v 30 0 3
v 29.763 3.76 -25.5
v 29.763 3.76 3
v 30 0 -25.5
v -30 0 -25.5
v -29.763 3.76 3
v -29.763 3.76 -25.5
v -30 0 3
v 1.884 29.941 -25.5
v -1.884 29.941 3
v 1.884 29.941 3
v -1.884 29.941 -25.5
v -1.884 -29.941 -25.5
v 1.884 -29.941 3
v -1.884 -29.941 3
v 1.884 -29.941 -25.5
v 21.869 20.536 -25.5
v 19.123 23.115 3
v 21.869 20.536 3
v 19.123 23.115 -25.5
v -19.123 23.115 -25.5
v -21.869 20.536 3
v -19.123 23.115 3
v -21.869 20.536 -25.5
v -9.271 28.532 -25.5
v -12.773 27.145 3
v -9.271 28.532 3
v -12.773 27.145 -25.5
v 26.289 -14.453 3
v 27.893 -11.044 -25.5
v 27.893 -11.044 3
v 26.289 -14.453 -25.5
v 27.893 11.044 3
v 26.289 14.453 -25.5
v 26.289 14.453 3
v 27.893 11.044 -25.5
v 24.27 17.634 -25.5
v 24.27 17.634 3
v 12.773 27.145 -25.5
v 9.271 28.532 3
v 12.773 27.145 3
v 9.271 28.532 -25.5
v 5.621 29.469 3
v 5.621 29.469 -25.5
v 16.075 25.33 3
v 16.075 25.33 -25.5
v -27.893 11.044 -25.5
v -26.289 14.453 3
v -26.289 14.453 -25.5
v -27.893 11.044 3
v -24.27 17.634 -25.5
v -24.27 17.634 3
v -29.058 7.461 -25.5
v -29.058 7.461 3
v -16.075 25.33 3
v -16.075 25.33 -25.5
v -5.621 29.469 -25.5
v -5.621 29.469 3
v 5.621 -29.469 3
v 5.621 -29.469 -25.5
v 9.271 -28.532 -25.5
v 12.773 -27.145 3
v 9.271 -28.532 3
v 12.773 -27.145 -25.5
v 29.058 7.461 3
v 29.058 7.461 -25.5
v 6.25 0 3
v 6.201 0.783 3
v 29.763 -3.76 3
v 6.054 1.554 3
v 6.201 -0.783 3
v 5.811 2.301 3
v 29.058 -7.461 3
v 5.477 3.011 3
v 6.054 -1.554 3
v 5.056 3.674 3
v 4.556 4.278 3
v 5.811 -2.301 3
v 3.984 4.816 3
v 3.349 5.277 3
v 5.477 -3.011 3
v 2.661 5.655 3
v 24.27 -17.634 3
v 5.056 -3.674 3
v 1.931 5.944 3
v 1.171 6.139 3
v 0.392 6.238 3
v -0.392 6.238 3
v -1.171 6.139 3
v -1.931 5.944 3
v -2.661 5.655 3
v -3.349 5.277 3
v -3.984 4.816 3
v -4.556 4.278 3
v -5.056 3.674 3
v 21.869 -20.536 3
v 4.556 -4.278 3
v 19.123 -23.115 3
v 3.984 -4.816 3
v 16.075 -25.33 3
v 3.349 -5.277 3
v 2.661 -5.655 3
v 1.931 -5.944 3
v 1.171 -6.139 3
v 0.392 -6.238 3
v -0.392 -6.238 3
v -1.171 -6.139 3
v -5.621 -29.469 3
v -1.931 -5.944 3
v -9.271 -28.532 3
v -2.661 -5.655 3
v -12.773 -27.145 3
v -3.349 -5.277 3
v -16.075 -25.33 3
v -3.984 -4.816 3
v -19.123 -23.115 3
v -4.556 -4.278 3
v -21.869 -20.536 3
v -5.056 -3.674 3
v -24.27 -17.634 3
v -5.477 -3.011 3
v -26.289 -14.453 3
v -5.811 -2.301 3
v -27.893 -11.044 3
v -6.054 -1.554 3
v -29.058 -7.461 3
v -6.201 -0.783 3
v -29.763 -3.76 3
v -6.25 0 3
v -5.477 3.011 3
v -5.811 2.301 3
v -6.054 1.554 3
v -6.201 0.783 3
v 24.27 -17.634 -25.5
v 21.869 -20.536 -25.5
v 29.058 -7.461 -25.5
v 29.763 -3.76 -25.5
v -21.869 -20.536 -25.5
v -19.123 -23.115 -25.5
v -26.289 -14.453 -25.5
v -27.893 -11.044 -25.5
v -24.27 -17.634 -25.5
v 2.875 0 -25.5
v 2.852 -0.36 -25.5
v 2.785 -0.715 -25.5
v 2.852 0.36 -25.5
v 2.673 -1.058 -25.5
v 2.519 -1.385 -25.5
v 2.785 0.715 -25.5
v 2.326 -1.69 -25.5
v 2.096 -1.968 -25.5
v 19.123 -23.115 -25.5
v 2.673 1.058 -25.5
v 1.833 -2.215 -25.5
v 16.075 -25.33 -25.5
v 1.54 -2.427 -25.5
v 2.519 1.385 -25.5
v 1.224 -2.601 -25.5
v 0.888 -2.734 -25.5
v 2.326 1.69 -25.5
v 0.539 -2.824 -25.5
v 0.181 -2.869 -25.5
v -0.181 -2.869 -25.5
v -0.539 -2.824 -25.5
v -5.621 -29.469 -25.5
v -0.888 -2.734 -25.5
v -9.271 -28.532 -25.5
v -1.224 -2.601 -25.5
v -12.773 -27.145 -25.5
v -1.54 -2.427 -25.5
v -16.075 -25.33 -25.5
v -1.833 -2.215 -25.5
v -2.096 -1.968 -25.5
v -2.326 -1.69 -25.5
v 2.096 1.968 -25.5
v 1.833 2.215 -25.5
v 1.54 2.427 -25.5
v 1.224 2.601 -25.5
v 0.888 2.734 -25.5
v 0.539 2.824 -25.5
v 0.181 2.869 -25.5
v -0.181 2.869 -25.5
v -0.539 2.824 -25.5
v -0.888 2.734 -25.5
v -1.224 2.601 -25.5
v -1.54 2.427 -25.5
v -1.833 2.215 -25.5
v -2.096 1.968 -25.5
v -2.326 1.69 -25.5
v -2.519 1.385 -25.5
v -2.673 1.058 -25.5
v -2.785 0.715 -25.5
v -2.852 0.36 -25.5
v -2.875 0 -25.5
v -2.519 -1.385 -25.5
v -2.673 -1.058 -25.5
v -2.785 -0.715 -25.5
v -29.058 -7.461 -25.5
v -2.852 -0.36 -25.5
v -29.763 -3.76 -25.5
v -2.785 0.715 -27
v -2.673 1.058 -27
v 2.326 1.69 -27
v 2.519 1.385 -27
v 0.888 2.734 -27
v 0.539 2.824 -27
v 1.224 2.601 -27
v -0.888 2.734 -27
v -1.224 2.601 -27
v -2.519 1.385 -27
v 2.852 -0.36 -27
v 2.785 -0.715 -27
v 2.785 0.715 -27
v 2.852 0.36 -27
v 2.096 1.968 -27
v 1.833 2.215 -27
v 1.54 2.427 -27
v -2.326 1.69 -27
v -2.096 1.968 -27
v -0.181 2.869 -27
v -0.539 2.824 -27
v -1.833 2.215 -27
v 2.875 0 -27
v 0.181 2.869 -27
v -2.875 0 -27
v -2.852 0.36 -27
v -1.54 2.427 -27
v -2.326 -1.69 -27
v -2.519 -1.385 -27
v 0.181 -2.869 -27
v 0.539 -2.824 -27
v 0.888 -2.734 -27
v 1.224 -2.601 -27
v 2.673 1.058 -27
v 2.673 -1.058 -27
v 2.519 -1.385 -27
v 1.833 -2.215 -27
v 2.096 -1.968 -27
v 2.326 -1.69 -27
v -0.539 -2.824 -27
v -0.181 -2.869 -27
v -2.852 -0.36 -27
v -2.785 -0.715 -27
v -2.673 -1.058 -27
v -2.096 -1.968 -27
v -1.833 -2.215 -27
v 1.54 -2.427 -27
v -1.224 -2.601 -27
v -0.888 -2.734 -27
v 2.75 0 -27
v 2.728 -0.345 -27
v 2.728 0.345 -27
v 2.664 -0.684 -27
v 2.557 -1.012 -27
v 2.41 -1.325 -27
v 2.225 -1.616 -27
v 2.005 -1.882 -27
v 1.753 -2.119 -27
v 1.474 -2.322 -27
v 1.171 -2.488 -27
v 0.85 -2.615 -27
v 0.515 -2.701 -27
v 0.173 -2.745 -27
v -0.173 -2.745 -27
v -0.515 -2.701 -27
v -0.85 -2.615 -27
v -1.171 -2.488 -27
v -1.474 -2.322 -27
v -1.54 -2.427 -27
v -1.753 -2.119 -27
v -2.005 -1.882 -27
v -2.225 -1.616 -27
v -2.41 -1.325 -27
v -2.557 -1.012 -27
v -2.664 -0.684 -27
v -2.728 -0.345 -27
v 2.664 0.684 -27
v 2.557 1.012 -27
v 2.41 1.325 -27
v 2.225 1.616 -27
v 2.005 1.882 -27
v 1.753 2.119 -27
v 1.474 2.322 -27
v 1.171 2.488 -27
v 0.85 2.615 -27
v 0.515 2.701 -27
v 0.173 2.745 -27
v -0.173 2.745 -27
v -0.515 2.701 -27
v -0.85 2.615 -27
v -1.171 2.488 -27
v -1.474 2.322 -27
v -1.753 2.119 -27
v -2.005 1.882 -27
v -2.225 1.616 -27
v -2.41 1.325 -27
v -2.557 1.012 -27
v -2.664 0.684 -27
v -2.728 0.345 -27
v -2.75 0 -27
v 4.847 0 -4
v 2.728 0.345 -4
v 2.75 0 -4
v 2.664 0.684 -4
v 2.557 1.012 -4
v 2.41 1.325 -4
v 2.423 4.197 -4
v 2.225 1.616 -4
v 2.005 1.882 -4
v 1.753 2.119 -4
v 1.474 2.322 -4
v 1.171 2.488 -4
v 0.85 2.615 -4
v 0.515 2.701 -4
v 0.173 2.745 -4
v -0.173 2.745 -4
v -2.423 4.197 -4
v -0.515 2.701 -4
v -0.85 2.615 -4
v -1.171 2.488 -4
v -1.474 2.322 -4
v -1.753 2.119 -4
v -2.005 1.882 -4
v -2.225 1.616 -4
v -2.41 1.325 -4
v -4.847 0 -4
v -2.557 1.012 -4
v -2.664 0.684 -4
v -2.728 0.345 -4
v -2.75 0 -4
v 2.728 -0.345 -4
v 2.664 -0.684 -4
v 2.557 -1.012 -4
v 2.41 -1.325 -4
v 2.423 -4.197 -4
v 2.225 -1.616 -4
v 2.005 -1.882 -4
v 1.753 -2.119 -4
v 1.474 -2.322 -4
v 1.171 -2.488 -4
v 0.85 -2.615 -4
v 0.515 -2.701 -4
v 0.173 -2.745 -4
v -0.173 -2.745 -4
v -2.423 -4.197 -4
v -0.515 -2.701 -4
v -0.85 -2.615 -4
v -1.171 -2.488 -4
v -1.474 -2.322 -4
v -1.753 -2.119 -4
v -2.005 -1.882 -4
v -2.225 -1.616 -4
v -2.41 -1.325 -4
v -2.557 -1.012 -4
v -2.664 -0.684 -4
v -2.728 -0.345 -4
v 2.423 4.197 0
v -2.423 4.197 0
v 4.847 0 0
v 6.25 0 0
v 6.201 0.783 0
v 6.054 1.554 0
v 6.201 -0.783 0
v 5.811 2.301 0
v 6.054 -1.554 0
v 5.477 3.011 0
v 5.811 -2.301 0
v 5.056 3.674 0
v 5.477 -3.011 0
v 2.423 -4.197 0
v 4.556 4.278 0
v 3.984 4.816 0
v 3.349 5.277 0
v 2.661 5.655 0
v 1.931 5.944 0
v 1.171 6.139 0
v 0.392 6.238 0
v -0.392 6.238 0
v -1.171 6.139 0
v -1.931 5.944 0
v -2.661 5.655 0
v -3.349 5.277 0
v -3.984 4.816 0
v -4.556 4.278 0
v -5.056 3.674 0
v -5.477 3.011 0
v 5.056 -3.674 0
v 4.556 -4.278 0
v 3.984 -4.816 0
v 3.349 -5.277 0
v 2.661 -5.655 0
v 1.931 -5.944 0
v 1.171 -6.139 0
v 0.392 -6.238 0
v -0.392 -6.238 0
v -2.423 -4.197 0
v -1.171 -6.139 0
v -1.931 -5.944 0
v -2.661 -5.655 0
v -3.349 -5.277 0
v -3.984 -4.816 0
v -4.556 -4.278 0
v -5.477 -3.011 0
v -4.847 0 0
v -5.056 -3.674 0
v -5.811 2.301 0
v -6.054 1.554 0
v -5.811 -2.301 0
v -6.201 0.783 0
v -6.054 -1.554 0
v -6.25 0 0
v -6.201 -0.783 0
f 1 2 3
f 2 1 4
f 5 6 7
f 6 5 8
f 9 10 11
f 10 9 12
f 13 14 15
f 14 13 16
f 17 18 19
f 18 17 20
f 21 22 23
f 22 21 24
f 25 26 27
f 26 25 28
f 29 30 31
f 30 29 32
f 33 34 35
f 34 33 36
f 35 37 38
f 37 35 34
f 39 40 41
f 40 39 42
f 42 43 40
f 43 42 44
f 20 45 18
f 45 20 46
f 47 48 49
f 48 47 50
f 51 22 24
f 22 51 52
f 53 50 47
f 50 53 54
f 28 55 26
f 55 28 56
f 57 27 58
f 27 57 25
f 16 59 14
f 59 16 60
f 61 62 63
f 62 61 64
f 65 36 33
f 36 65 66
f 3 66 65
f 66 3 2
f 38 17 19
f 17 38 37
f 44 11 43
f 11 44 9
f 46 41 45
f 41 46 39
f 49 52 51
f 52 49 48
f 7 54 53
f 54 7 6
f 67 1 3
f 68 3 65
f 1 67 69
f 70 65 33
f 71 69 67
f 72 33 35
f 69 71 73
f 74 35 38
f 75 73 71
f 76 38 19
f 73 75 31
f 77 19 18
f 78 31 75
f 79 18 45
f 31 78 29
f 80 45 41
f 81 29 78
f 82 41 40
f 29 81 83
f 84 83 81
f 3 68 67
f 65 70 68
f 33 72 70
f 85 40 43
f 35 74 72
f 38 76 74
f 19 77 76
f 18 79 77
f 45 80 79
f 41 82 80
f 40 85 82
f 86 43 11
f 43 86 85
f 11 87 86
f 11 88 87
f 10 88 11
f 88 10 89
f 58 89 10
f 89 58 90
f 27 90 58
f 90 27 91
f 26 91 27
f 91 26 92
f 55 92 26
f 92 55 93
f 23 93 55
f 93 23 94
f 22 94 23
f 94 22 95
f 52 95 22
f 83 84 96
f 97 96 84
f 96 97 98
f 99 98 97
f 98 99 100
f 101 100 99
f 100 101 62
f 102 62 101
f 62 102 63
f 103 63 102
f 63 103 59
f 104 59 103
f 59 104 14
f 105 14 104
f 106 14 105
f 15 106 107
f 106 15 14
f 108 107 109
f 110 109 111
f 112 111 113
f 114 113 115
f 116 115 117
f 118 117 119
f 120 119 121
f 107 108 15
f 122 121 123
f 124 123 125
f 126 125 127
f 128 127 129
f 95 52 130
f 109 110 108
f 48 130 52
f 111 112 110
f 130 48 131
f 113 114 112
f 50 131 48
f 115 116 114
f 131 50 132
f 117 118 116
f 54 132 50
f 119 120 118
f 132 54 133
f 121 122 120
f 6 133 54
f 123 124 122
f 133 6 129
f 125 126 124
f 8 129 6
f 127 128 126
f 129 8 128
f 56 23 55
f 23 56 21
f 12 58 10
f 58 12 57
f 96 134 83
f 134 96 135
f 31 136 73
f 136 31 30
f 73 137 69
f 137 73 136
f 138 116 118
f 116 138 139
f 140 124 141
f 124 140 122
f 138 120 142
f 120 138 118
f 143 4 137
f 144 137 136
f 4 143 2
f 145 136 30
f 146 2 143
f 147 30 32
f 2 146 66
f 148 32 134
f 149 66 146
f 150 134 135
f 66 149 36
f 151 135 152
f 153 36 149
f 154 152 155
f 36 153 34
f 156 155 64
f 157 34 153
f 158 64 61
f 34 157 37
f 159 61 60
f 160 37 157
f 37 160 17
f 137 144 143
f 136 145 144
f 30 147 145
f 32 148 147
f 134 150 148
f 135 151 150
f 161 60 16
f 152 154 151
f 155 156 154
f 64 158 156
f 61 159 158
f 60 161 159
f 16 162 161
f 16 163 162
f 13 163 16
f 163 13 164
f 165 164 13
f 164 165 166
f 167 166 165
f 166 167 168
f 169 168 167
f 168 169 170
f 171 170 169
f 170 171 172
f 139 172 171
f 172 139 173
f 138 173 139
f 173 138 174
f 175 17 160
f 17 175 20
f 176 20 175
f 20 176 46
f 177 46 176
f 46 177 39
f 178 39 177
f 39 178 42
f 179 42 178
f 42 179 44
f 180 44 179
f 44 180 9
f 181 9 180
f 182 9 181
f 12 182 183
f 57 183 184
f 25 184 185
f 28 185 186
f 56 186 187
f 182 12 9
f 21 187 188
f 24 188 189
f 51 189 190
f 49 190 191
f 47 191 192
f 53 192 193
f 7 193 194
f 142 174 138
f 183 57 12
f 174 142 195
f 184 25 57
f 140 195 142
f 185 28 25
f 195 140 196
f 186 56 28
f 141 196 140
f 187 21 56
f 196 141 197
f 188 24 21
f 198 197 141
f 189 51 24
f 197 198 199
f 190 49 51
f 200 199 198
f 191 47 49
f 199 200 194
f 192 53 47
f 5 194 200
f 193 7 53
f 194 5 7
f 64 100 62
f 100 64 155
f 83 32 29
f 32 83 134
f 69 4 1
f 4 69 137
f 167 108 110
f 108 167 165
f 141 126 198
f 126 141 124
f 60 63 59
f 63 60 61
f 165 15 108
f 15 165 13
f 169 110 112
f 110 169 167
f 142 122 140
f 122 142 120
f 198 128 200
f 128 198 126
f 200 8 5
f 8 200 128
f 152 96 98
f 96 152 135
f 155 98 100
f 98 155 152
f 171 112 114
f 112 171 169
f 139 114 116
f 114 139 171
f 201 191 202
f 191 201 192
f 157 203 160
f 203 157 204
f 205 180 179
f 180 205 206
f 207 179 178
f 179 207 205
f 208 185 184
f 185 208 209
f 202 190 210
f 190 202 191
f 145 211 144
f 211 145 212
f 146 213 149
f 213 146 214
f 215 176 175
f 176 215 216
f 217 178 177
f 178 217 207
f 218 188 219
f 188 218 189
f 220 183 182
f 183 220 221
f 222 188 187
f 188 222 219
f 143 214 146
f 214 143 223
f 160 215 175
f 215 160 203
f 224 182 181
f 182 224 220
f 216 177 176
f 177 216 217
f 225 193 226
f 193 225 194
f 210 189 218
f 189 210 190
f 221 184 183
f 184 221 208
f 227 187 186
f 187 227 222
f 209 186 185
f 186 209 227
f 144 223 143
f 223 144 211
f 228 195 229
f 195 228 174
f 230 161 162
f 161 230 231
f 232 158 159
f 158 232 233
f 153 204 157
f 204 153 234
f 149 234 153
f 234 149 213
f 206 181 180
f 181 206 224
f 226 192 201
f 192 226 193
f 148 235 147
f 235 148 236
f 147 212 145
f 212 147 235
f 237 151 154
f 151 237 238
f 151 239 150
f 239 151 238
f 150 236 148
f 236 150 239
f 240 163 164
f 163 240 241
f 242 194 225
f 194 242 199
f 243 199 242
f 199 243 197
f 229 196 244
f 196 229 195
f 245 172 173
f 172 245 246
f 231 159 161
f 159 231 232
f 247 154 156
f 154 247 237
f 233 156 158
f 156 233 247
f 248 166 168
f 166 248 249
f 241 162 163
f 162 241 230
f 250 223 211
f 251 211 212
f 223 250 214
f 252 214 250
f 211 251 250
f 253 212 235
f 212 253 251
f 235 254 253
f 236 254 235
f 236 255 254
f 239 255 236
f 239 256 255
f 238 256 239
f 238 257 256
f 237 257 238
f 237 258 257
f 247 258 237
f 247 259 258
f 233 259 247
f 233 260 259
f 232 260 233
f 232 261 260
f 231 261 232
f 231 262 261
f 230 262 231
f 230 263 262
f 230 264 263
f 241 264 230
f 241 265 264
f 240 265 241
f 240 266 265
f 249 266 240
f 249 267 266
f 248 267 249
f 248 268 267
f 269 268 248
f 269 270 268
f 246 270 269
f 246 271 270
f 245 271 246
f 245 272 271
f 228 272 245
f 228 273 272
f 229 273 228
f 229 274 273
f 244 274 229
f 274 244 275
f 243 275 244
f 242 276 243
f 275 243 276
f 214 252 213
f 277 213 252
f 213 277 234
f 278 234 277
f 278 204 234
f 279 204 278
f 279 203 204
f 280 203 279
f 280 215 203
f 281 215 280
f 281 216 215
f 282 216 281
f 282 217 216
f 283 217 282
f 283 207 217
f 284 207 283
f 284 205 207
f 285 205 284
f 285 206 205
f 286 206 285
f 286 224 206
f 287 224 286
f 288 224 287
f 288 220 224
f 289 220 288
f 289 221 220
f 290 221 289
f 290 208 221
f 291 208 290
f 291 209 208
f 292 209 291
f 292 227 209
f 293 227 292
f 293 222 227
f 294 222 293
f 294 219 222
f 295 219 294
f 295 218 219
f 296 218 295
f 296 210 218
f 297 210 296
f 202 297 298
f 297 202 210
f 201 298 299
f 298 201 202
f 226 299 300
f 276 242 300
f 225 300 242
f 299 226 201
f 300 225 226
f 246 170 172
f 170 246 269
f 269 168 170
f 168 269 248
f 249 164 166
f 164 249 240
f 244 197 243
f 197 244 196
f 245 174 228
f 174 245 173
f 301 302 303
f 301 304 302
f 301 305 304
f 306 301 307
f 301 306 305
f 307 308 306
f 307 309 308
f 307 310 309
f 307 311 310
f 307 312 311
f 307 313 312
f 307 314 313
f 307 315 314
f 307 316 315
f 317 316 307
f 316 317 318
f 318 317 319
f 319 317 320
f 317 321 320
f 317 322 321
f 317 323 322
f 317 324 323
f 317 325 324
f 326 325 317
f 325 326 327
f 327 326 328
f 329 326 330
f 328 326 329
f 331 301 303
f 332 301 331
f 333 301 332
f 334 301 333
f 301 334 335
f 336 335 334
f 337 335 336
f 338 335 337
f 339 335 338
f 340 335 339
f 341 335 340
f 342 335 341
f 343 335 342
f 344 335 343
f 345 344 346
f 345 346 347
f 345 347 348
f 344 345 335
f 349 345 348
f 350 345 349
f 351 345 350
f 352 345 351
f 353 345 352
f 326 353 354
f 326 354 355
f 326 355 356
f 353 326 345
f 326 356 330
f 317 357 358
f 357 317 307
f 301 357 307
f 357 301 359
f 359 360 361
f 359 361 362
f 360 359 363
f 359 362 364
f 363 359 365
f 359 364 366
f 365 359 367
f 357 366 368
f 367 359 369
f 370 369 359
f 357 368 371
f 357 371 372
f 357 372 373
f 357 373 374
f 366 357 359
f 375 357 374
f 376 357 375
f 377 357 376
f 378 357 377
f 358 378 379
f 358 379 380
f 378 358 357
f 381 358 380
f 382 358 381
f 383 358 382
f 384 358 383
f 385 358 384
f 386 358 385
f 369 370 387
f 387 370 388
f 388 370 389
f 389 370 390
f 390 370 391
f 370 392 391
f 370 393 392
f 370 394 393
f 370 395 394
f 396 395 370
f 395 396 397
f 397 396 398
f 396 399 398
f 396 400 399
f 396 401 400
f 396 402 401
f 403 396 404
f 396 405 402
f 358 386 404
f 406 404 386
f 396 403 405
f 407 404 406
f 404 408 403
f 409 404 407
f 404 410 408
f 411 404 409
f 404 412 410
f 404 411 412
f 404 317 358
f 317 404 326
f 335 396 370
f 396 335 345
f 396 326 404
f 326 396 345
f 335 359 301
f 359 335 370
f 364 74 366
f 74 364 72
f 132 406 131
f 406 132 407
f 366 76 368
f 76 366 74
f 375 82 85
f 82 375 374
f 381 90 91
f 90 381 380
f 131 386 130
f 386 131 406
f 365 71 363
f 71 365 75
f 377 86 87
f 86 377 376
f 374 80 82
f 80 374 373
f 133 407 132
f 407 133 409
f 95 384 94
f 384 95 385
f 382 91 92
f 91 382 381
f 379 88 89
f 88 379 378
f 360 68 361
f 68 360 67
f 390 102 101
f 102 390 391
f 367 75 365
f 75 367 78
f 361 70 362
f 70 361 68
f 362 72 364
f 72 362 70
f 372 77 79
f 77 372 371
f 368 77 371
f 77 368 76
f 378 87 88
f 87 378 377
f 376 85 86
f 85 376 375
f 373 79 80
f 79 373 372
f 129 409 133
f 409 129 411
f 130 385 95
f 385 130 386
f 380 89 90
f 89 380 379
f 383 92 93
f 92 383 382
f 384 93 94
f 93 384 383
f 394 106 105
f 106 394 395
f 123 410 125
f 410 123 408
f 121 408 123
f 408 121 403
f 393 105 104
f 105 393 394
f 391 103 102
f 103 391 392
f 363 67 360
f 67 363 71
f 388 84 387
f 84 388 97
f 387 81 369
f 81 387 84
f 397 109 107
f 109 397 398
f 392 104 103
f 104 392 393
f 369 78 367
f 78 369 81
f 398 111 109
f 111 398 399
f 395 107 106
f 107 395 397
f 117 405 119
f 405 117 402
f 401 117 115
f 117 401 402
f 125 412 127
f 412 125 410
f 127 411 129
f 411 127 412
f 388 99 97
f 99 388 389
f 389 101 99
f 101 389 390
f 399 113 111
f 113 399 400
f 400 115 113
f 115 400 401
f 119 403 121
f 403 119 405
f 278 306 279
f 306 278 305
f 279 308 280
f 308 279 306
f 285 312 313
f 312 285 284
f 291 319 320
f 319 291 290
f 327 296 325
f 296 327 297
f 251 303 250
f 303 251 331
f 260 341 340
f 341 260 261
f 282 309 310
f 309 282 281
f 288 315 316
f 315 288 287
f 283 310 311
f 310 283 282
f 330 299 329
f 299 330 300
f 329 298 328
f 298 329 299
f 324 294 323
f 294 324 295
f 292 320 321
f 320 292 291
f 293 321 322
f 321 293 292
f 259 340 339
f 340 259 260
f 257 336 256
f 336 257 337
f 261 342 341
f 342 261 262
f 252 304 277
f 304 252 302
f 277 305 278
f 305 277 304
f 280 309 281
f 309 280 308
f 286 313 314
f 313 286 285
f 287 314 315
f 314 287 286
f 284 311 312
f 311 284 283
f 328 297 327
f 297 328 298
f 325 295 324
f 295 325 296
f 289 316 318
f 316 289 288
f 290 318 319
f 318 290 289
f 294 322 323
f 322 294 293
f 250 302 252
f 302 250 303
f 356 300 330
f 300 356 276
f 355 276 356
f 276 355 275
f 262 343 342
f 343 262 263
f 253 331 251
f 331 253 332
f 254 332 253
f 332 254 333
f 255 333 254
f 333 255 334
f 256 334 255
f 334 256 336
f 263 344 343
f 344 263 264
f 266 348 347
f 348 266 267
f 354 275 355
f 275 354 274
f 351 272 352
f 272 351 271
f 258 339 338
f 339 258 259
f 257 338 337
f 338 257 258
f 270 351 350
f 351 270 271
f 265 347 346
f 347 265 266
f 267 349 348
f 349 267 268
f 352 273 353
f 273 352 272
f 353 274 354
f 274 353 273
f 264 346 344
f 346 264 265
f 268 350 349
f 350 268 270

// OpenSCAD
$fn = 50;


difference() {
	union() {
		translate(v = [0, 0, -25.5000000000]) {
			cylinder(h = 28.5000000000, r = 30.0000000000);
		}
		#translate(v = [0, 0, -27.0000000000]) {
			cylinder(h = 27, r = 2.8750000000);
		}
	}
	union() {
		translate(v = [0, 0, 0]) {
			rotate(a = [0, 0, 0]) {
				difference() {
					union() {
						translate(v = [0, 0, -4]) {
							linear_extrude(height = 4) {
								polygon(points = [[4.8468000000, 0.0000000000], [2.4234000000, 4.1974519271], [-2.4234000000, 4.1974519271], [-4.8468000000, 0.0000000000], [-2.4234000000, -4.1974519271], [2.4234000000, -4.1974519271]]);
							}
						}
					}
					union();
				}
			}
		}
		#cylinder(h = 3, r = 6.2500000000);
		#translate(v = [0, 0, -100.0000000000]) {
			cylinder(h = 200, r = 2.7500000000);
		}
	}
}
